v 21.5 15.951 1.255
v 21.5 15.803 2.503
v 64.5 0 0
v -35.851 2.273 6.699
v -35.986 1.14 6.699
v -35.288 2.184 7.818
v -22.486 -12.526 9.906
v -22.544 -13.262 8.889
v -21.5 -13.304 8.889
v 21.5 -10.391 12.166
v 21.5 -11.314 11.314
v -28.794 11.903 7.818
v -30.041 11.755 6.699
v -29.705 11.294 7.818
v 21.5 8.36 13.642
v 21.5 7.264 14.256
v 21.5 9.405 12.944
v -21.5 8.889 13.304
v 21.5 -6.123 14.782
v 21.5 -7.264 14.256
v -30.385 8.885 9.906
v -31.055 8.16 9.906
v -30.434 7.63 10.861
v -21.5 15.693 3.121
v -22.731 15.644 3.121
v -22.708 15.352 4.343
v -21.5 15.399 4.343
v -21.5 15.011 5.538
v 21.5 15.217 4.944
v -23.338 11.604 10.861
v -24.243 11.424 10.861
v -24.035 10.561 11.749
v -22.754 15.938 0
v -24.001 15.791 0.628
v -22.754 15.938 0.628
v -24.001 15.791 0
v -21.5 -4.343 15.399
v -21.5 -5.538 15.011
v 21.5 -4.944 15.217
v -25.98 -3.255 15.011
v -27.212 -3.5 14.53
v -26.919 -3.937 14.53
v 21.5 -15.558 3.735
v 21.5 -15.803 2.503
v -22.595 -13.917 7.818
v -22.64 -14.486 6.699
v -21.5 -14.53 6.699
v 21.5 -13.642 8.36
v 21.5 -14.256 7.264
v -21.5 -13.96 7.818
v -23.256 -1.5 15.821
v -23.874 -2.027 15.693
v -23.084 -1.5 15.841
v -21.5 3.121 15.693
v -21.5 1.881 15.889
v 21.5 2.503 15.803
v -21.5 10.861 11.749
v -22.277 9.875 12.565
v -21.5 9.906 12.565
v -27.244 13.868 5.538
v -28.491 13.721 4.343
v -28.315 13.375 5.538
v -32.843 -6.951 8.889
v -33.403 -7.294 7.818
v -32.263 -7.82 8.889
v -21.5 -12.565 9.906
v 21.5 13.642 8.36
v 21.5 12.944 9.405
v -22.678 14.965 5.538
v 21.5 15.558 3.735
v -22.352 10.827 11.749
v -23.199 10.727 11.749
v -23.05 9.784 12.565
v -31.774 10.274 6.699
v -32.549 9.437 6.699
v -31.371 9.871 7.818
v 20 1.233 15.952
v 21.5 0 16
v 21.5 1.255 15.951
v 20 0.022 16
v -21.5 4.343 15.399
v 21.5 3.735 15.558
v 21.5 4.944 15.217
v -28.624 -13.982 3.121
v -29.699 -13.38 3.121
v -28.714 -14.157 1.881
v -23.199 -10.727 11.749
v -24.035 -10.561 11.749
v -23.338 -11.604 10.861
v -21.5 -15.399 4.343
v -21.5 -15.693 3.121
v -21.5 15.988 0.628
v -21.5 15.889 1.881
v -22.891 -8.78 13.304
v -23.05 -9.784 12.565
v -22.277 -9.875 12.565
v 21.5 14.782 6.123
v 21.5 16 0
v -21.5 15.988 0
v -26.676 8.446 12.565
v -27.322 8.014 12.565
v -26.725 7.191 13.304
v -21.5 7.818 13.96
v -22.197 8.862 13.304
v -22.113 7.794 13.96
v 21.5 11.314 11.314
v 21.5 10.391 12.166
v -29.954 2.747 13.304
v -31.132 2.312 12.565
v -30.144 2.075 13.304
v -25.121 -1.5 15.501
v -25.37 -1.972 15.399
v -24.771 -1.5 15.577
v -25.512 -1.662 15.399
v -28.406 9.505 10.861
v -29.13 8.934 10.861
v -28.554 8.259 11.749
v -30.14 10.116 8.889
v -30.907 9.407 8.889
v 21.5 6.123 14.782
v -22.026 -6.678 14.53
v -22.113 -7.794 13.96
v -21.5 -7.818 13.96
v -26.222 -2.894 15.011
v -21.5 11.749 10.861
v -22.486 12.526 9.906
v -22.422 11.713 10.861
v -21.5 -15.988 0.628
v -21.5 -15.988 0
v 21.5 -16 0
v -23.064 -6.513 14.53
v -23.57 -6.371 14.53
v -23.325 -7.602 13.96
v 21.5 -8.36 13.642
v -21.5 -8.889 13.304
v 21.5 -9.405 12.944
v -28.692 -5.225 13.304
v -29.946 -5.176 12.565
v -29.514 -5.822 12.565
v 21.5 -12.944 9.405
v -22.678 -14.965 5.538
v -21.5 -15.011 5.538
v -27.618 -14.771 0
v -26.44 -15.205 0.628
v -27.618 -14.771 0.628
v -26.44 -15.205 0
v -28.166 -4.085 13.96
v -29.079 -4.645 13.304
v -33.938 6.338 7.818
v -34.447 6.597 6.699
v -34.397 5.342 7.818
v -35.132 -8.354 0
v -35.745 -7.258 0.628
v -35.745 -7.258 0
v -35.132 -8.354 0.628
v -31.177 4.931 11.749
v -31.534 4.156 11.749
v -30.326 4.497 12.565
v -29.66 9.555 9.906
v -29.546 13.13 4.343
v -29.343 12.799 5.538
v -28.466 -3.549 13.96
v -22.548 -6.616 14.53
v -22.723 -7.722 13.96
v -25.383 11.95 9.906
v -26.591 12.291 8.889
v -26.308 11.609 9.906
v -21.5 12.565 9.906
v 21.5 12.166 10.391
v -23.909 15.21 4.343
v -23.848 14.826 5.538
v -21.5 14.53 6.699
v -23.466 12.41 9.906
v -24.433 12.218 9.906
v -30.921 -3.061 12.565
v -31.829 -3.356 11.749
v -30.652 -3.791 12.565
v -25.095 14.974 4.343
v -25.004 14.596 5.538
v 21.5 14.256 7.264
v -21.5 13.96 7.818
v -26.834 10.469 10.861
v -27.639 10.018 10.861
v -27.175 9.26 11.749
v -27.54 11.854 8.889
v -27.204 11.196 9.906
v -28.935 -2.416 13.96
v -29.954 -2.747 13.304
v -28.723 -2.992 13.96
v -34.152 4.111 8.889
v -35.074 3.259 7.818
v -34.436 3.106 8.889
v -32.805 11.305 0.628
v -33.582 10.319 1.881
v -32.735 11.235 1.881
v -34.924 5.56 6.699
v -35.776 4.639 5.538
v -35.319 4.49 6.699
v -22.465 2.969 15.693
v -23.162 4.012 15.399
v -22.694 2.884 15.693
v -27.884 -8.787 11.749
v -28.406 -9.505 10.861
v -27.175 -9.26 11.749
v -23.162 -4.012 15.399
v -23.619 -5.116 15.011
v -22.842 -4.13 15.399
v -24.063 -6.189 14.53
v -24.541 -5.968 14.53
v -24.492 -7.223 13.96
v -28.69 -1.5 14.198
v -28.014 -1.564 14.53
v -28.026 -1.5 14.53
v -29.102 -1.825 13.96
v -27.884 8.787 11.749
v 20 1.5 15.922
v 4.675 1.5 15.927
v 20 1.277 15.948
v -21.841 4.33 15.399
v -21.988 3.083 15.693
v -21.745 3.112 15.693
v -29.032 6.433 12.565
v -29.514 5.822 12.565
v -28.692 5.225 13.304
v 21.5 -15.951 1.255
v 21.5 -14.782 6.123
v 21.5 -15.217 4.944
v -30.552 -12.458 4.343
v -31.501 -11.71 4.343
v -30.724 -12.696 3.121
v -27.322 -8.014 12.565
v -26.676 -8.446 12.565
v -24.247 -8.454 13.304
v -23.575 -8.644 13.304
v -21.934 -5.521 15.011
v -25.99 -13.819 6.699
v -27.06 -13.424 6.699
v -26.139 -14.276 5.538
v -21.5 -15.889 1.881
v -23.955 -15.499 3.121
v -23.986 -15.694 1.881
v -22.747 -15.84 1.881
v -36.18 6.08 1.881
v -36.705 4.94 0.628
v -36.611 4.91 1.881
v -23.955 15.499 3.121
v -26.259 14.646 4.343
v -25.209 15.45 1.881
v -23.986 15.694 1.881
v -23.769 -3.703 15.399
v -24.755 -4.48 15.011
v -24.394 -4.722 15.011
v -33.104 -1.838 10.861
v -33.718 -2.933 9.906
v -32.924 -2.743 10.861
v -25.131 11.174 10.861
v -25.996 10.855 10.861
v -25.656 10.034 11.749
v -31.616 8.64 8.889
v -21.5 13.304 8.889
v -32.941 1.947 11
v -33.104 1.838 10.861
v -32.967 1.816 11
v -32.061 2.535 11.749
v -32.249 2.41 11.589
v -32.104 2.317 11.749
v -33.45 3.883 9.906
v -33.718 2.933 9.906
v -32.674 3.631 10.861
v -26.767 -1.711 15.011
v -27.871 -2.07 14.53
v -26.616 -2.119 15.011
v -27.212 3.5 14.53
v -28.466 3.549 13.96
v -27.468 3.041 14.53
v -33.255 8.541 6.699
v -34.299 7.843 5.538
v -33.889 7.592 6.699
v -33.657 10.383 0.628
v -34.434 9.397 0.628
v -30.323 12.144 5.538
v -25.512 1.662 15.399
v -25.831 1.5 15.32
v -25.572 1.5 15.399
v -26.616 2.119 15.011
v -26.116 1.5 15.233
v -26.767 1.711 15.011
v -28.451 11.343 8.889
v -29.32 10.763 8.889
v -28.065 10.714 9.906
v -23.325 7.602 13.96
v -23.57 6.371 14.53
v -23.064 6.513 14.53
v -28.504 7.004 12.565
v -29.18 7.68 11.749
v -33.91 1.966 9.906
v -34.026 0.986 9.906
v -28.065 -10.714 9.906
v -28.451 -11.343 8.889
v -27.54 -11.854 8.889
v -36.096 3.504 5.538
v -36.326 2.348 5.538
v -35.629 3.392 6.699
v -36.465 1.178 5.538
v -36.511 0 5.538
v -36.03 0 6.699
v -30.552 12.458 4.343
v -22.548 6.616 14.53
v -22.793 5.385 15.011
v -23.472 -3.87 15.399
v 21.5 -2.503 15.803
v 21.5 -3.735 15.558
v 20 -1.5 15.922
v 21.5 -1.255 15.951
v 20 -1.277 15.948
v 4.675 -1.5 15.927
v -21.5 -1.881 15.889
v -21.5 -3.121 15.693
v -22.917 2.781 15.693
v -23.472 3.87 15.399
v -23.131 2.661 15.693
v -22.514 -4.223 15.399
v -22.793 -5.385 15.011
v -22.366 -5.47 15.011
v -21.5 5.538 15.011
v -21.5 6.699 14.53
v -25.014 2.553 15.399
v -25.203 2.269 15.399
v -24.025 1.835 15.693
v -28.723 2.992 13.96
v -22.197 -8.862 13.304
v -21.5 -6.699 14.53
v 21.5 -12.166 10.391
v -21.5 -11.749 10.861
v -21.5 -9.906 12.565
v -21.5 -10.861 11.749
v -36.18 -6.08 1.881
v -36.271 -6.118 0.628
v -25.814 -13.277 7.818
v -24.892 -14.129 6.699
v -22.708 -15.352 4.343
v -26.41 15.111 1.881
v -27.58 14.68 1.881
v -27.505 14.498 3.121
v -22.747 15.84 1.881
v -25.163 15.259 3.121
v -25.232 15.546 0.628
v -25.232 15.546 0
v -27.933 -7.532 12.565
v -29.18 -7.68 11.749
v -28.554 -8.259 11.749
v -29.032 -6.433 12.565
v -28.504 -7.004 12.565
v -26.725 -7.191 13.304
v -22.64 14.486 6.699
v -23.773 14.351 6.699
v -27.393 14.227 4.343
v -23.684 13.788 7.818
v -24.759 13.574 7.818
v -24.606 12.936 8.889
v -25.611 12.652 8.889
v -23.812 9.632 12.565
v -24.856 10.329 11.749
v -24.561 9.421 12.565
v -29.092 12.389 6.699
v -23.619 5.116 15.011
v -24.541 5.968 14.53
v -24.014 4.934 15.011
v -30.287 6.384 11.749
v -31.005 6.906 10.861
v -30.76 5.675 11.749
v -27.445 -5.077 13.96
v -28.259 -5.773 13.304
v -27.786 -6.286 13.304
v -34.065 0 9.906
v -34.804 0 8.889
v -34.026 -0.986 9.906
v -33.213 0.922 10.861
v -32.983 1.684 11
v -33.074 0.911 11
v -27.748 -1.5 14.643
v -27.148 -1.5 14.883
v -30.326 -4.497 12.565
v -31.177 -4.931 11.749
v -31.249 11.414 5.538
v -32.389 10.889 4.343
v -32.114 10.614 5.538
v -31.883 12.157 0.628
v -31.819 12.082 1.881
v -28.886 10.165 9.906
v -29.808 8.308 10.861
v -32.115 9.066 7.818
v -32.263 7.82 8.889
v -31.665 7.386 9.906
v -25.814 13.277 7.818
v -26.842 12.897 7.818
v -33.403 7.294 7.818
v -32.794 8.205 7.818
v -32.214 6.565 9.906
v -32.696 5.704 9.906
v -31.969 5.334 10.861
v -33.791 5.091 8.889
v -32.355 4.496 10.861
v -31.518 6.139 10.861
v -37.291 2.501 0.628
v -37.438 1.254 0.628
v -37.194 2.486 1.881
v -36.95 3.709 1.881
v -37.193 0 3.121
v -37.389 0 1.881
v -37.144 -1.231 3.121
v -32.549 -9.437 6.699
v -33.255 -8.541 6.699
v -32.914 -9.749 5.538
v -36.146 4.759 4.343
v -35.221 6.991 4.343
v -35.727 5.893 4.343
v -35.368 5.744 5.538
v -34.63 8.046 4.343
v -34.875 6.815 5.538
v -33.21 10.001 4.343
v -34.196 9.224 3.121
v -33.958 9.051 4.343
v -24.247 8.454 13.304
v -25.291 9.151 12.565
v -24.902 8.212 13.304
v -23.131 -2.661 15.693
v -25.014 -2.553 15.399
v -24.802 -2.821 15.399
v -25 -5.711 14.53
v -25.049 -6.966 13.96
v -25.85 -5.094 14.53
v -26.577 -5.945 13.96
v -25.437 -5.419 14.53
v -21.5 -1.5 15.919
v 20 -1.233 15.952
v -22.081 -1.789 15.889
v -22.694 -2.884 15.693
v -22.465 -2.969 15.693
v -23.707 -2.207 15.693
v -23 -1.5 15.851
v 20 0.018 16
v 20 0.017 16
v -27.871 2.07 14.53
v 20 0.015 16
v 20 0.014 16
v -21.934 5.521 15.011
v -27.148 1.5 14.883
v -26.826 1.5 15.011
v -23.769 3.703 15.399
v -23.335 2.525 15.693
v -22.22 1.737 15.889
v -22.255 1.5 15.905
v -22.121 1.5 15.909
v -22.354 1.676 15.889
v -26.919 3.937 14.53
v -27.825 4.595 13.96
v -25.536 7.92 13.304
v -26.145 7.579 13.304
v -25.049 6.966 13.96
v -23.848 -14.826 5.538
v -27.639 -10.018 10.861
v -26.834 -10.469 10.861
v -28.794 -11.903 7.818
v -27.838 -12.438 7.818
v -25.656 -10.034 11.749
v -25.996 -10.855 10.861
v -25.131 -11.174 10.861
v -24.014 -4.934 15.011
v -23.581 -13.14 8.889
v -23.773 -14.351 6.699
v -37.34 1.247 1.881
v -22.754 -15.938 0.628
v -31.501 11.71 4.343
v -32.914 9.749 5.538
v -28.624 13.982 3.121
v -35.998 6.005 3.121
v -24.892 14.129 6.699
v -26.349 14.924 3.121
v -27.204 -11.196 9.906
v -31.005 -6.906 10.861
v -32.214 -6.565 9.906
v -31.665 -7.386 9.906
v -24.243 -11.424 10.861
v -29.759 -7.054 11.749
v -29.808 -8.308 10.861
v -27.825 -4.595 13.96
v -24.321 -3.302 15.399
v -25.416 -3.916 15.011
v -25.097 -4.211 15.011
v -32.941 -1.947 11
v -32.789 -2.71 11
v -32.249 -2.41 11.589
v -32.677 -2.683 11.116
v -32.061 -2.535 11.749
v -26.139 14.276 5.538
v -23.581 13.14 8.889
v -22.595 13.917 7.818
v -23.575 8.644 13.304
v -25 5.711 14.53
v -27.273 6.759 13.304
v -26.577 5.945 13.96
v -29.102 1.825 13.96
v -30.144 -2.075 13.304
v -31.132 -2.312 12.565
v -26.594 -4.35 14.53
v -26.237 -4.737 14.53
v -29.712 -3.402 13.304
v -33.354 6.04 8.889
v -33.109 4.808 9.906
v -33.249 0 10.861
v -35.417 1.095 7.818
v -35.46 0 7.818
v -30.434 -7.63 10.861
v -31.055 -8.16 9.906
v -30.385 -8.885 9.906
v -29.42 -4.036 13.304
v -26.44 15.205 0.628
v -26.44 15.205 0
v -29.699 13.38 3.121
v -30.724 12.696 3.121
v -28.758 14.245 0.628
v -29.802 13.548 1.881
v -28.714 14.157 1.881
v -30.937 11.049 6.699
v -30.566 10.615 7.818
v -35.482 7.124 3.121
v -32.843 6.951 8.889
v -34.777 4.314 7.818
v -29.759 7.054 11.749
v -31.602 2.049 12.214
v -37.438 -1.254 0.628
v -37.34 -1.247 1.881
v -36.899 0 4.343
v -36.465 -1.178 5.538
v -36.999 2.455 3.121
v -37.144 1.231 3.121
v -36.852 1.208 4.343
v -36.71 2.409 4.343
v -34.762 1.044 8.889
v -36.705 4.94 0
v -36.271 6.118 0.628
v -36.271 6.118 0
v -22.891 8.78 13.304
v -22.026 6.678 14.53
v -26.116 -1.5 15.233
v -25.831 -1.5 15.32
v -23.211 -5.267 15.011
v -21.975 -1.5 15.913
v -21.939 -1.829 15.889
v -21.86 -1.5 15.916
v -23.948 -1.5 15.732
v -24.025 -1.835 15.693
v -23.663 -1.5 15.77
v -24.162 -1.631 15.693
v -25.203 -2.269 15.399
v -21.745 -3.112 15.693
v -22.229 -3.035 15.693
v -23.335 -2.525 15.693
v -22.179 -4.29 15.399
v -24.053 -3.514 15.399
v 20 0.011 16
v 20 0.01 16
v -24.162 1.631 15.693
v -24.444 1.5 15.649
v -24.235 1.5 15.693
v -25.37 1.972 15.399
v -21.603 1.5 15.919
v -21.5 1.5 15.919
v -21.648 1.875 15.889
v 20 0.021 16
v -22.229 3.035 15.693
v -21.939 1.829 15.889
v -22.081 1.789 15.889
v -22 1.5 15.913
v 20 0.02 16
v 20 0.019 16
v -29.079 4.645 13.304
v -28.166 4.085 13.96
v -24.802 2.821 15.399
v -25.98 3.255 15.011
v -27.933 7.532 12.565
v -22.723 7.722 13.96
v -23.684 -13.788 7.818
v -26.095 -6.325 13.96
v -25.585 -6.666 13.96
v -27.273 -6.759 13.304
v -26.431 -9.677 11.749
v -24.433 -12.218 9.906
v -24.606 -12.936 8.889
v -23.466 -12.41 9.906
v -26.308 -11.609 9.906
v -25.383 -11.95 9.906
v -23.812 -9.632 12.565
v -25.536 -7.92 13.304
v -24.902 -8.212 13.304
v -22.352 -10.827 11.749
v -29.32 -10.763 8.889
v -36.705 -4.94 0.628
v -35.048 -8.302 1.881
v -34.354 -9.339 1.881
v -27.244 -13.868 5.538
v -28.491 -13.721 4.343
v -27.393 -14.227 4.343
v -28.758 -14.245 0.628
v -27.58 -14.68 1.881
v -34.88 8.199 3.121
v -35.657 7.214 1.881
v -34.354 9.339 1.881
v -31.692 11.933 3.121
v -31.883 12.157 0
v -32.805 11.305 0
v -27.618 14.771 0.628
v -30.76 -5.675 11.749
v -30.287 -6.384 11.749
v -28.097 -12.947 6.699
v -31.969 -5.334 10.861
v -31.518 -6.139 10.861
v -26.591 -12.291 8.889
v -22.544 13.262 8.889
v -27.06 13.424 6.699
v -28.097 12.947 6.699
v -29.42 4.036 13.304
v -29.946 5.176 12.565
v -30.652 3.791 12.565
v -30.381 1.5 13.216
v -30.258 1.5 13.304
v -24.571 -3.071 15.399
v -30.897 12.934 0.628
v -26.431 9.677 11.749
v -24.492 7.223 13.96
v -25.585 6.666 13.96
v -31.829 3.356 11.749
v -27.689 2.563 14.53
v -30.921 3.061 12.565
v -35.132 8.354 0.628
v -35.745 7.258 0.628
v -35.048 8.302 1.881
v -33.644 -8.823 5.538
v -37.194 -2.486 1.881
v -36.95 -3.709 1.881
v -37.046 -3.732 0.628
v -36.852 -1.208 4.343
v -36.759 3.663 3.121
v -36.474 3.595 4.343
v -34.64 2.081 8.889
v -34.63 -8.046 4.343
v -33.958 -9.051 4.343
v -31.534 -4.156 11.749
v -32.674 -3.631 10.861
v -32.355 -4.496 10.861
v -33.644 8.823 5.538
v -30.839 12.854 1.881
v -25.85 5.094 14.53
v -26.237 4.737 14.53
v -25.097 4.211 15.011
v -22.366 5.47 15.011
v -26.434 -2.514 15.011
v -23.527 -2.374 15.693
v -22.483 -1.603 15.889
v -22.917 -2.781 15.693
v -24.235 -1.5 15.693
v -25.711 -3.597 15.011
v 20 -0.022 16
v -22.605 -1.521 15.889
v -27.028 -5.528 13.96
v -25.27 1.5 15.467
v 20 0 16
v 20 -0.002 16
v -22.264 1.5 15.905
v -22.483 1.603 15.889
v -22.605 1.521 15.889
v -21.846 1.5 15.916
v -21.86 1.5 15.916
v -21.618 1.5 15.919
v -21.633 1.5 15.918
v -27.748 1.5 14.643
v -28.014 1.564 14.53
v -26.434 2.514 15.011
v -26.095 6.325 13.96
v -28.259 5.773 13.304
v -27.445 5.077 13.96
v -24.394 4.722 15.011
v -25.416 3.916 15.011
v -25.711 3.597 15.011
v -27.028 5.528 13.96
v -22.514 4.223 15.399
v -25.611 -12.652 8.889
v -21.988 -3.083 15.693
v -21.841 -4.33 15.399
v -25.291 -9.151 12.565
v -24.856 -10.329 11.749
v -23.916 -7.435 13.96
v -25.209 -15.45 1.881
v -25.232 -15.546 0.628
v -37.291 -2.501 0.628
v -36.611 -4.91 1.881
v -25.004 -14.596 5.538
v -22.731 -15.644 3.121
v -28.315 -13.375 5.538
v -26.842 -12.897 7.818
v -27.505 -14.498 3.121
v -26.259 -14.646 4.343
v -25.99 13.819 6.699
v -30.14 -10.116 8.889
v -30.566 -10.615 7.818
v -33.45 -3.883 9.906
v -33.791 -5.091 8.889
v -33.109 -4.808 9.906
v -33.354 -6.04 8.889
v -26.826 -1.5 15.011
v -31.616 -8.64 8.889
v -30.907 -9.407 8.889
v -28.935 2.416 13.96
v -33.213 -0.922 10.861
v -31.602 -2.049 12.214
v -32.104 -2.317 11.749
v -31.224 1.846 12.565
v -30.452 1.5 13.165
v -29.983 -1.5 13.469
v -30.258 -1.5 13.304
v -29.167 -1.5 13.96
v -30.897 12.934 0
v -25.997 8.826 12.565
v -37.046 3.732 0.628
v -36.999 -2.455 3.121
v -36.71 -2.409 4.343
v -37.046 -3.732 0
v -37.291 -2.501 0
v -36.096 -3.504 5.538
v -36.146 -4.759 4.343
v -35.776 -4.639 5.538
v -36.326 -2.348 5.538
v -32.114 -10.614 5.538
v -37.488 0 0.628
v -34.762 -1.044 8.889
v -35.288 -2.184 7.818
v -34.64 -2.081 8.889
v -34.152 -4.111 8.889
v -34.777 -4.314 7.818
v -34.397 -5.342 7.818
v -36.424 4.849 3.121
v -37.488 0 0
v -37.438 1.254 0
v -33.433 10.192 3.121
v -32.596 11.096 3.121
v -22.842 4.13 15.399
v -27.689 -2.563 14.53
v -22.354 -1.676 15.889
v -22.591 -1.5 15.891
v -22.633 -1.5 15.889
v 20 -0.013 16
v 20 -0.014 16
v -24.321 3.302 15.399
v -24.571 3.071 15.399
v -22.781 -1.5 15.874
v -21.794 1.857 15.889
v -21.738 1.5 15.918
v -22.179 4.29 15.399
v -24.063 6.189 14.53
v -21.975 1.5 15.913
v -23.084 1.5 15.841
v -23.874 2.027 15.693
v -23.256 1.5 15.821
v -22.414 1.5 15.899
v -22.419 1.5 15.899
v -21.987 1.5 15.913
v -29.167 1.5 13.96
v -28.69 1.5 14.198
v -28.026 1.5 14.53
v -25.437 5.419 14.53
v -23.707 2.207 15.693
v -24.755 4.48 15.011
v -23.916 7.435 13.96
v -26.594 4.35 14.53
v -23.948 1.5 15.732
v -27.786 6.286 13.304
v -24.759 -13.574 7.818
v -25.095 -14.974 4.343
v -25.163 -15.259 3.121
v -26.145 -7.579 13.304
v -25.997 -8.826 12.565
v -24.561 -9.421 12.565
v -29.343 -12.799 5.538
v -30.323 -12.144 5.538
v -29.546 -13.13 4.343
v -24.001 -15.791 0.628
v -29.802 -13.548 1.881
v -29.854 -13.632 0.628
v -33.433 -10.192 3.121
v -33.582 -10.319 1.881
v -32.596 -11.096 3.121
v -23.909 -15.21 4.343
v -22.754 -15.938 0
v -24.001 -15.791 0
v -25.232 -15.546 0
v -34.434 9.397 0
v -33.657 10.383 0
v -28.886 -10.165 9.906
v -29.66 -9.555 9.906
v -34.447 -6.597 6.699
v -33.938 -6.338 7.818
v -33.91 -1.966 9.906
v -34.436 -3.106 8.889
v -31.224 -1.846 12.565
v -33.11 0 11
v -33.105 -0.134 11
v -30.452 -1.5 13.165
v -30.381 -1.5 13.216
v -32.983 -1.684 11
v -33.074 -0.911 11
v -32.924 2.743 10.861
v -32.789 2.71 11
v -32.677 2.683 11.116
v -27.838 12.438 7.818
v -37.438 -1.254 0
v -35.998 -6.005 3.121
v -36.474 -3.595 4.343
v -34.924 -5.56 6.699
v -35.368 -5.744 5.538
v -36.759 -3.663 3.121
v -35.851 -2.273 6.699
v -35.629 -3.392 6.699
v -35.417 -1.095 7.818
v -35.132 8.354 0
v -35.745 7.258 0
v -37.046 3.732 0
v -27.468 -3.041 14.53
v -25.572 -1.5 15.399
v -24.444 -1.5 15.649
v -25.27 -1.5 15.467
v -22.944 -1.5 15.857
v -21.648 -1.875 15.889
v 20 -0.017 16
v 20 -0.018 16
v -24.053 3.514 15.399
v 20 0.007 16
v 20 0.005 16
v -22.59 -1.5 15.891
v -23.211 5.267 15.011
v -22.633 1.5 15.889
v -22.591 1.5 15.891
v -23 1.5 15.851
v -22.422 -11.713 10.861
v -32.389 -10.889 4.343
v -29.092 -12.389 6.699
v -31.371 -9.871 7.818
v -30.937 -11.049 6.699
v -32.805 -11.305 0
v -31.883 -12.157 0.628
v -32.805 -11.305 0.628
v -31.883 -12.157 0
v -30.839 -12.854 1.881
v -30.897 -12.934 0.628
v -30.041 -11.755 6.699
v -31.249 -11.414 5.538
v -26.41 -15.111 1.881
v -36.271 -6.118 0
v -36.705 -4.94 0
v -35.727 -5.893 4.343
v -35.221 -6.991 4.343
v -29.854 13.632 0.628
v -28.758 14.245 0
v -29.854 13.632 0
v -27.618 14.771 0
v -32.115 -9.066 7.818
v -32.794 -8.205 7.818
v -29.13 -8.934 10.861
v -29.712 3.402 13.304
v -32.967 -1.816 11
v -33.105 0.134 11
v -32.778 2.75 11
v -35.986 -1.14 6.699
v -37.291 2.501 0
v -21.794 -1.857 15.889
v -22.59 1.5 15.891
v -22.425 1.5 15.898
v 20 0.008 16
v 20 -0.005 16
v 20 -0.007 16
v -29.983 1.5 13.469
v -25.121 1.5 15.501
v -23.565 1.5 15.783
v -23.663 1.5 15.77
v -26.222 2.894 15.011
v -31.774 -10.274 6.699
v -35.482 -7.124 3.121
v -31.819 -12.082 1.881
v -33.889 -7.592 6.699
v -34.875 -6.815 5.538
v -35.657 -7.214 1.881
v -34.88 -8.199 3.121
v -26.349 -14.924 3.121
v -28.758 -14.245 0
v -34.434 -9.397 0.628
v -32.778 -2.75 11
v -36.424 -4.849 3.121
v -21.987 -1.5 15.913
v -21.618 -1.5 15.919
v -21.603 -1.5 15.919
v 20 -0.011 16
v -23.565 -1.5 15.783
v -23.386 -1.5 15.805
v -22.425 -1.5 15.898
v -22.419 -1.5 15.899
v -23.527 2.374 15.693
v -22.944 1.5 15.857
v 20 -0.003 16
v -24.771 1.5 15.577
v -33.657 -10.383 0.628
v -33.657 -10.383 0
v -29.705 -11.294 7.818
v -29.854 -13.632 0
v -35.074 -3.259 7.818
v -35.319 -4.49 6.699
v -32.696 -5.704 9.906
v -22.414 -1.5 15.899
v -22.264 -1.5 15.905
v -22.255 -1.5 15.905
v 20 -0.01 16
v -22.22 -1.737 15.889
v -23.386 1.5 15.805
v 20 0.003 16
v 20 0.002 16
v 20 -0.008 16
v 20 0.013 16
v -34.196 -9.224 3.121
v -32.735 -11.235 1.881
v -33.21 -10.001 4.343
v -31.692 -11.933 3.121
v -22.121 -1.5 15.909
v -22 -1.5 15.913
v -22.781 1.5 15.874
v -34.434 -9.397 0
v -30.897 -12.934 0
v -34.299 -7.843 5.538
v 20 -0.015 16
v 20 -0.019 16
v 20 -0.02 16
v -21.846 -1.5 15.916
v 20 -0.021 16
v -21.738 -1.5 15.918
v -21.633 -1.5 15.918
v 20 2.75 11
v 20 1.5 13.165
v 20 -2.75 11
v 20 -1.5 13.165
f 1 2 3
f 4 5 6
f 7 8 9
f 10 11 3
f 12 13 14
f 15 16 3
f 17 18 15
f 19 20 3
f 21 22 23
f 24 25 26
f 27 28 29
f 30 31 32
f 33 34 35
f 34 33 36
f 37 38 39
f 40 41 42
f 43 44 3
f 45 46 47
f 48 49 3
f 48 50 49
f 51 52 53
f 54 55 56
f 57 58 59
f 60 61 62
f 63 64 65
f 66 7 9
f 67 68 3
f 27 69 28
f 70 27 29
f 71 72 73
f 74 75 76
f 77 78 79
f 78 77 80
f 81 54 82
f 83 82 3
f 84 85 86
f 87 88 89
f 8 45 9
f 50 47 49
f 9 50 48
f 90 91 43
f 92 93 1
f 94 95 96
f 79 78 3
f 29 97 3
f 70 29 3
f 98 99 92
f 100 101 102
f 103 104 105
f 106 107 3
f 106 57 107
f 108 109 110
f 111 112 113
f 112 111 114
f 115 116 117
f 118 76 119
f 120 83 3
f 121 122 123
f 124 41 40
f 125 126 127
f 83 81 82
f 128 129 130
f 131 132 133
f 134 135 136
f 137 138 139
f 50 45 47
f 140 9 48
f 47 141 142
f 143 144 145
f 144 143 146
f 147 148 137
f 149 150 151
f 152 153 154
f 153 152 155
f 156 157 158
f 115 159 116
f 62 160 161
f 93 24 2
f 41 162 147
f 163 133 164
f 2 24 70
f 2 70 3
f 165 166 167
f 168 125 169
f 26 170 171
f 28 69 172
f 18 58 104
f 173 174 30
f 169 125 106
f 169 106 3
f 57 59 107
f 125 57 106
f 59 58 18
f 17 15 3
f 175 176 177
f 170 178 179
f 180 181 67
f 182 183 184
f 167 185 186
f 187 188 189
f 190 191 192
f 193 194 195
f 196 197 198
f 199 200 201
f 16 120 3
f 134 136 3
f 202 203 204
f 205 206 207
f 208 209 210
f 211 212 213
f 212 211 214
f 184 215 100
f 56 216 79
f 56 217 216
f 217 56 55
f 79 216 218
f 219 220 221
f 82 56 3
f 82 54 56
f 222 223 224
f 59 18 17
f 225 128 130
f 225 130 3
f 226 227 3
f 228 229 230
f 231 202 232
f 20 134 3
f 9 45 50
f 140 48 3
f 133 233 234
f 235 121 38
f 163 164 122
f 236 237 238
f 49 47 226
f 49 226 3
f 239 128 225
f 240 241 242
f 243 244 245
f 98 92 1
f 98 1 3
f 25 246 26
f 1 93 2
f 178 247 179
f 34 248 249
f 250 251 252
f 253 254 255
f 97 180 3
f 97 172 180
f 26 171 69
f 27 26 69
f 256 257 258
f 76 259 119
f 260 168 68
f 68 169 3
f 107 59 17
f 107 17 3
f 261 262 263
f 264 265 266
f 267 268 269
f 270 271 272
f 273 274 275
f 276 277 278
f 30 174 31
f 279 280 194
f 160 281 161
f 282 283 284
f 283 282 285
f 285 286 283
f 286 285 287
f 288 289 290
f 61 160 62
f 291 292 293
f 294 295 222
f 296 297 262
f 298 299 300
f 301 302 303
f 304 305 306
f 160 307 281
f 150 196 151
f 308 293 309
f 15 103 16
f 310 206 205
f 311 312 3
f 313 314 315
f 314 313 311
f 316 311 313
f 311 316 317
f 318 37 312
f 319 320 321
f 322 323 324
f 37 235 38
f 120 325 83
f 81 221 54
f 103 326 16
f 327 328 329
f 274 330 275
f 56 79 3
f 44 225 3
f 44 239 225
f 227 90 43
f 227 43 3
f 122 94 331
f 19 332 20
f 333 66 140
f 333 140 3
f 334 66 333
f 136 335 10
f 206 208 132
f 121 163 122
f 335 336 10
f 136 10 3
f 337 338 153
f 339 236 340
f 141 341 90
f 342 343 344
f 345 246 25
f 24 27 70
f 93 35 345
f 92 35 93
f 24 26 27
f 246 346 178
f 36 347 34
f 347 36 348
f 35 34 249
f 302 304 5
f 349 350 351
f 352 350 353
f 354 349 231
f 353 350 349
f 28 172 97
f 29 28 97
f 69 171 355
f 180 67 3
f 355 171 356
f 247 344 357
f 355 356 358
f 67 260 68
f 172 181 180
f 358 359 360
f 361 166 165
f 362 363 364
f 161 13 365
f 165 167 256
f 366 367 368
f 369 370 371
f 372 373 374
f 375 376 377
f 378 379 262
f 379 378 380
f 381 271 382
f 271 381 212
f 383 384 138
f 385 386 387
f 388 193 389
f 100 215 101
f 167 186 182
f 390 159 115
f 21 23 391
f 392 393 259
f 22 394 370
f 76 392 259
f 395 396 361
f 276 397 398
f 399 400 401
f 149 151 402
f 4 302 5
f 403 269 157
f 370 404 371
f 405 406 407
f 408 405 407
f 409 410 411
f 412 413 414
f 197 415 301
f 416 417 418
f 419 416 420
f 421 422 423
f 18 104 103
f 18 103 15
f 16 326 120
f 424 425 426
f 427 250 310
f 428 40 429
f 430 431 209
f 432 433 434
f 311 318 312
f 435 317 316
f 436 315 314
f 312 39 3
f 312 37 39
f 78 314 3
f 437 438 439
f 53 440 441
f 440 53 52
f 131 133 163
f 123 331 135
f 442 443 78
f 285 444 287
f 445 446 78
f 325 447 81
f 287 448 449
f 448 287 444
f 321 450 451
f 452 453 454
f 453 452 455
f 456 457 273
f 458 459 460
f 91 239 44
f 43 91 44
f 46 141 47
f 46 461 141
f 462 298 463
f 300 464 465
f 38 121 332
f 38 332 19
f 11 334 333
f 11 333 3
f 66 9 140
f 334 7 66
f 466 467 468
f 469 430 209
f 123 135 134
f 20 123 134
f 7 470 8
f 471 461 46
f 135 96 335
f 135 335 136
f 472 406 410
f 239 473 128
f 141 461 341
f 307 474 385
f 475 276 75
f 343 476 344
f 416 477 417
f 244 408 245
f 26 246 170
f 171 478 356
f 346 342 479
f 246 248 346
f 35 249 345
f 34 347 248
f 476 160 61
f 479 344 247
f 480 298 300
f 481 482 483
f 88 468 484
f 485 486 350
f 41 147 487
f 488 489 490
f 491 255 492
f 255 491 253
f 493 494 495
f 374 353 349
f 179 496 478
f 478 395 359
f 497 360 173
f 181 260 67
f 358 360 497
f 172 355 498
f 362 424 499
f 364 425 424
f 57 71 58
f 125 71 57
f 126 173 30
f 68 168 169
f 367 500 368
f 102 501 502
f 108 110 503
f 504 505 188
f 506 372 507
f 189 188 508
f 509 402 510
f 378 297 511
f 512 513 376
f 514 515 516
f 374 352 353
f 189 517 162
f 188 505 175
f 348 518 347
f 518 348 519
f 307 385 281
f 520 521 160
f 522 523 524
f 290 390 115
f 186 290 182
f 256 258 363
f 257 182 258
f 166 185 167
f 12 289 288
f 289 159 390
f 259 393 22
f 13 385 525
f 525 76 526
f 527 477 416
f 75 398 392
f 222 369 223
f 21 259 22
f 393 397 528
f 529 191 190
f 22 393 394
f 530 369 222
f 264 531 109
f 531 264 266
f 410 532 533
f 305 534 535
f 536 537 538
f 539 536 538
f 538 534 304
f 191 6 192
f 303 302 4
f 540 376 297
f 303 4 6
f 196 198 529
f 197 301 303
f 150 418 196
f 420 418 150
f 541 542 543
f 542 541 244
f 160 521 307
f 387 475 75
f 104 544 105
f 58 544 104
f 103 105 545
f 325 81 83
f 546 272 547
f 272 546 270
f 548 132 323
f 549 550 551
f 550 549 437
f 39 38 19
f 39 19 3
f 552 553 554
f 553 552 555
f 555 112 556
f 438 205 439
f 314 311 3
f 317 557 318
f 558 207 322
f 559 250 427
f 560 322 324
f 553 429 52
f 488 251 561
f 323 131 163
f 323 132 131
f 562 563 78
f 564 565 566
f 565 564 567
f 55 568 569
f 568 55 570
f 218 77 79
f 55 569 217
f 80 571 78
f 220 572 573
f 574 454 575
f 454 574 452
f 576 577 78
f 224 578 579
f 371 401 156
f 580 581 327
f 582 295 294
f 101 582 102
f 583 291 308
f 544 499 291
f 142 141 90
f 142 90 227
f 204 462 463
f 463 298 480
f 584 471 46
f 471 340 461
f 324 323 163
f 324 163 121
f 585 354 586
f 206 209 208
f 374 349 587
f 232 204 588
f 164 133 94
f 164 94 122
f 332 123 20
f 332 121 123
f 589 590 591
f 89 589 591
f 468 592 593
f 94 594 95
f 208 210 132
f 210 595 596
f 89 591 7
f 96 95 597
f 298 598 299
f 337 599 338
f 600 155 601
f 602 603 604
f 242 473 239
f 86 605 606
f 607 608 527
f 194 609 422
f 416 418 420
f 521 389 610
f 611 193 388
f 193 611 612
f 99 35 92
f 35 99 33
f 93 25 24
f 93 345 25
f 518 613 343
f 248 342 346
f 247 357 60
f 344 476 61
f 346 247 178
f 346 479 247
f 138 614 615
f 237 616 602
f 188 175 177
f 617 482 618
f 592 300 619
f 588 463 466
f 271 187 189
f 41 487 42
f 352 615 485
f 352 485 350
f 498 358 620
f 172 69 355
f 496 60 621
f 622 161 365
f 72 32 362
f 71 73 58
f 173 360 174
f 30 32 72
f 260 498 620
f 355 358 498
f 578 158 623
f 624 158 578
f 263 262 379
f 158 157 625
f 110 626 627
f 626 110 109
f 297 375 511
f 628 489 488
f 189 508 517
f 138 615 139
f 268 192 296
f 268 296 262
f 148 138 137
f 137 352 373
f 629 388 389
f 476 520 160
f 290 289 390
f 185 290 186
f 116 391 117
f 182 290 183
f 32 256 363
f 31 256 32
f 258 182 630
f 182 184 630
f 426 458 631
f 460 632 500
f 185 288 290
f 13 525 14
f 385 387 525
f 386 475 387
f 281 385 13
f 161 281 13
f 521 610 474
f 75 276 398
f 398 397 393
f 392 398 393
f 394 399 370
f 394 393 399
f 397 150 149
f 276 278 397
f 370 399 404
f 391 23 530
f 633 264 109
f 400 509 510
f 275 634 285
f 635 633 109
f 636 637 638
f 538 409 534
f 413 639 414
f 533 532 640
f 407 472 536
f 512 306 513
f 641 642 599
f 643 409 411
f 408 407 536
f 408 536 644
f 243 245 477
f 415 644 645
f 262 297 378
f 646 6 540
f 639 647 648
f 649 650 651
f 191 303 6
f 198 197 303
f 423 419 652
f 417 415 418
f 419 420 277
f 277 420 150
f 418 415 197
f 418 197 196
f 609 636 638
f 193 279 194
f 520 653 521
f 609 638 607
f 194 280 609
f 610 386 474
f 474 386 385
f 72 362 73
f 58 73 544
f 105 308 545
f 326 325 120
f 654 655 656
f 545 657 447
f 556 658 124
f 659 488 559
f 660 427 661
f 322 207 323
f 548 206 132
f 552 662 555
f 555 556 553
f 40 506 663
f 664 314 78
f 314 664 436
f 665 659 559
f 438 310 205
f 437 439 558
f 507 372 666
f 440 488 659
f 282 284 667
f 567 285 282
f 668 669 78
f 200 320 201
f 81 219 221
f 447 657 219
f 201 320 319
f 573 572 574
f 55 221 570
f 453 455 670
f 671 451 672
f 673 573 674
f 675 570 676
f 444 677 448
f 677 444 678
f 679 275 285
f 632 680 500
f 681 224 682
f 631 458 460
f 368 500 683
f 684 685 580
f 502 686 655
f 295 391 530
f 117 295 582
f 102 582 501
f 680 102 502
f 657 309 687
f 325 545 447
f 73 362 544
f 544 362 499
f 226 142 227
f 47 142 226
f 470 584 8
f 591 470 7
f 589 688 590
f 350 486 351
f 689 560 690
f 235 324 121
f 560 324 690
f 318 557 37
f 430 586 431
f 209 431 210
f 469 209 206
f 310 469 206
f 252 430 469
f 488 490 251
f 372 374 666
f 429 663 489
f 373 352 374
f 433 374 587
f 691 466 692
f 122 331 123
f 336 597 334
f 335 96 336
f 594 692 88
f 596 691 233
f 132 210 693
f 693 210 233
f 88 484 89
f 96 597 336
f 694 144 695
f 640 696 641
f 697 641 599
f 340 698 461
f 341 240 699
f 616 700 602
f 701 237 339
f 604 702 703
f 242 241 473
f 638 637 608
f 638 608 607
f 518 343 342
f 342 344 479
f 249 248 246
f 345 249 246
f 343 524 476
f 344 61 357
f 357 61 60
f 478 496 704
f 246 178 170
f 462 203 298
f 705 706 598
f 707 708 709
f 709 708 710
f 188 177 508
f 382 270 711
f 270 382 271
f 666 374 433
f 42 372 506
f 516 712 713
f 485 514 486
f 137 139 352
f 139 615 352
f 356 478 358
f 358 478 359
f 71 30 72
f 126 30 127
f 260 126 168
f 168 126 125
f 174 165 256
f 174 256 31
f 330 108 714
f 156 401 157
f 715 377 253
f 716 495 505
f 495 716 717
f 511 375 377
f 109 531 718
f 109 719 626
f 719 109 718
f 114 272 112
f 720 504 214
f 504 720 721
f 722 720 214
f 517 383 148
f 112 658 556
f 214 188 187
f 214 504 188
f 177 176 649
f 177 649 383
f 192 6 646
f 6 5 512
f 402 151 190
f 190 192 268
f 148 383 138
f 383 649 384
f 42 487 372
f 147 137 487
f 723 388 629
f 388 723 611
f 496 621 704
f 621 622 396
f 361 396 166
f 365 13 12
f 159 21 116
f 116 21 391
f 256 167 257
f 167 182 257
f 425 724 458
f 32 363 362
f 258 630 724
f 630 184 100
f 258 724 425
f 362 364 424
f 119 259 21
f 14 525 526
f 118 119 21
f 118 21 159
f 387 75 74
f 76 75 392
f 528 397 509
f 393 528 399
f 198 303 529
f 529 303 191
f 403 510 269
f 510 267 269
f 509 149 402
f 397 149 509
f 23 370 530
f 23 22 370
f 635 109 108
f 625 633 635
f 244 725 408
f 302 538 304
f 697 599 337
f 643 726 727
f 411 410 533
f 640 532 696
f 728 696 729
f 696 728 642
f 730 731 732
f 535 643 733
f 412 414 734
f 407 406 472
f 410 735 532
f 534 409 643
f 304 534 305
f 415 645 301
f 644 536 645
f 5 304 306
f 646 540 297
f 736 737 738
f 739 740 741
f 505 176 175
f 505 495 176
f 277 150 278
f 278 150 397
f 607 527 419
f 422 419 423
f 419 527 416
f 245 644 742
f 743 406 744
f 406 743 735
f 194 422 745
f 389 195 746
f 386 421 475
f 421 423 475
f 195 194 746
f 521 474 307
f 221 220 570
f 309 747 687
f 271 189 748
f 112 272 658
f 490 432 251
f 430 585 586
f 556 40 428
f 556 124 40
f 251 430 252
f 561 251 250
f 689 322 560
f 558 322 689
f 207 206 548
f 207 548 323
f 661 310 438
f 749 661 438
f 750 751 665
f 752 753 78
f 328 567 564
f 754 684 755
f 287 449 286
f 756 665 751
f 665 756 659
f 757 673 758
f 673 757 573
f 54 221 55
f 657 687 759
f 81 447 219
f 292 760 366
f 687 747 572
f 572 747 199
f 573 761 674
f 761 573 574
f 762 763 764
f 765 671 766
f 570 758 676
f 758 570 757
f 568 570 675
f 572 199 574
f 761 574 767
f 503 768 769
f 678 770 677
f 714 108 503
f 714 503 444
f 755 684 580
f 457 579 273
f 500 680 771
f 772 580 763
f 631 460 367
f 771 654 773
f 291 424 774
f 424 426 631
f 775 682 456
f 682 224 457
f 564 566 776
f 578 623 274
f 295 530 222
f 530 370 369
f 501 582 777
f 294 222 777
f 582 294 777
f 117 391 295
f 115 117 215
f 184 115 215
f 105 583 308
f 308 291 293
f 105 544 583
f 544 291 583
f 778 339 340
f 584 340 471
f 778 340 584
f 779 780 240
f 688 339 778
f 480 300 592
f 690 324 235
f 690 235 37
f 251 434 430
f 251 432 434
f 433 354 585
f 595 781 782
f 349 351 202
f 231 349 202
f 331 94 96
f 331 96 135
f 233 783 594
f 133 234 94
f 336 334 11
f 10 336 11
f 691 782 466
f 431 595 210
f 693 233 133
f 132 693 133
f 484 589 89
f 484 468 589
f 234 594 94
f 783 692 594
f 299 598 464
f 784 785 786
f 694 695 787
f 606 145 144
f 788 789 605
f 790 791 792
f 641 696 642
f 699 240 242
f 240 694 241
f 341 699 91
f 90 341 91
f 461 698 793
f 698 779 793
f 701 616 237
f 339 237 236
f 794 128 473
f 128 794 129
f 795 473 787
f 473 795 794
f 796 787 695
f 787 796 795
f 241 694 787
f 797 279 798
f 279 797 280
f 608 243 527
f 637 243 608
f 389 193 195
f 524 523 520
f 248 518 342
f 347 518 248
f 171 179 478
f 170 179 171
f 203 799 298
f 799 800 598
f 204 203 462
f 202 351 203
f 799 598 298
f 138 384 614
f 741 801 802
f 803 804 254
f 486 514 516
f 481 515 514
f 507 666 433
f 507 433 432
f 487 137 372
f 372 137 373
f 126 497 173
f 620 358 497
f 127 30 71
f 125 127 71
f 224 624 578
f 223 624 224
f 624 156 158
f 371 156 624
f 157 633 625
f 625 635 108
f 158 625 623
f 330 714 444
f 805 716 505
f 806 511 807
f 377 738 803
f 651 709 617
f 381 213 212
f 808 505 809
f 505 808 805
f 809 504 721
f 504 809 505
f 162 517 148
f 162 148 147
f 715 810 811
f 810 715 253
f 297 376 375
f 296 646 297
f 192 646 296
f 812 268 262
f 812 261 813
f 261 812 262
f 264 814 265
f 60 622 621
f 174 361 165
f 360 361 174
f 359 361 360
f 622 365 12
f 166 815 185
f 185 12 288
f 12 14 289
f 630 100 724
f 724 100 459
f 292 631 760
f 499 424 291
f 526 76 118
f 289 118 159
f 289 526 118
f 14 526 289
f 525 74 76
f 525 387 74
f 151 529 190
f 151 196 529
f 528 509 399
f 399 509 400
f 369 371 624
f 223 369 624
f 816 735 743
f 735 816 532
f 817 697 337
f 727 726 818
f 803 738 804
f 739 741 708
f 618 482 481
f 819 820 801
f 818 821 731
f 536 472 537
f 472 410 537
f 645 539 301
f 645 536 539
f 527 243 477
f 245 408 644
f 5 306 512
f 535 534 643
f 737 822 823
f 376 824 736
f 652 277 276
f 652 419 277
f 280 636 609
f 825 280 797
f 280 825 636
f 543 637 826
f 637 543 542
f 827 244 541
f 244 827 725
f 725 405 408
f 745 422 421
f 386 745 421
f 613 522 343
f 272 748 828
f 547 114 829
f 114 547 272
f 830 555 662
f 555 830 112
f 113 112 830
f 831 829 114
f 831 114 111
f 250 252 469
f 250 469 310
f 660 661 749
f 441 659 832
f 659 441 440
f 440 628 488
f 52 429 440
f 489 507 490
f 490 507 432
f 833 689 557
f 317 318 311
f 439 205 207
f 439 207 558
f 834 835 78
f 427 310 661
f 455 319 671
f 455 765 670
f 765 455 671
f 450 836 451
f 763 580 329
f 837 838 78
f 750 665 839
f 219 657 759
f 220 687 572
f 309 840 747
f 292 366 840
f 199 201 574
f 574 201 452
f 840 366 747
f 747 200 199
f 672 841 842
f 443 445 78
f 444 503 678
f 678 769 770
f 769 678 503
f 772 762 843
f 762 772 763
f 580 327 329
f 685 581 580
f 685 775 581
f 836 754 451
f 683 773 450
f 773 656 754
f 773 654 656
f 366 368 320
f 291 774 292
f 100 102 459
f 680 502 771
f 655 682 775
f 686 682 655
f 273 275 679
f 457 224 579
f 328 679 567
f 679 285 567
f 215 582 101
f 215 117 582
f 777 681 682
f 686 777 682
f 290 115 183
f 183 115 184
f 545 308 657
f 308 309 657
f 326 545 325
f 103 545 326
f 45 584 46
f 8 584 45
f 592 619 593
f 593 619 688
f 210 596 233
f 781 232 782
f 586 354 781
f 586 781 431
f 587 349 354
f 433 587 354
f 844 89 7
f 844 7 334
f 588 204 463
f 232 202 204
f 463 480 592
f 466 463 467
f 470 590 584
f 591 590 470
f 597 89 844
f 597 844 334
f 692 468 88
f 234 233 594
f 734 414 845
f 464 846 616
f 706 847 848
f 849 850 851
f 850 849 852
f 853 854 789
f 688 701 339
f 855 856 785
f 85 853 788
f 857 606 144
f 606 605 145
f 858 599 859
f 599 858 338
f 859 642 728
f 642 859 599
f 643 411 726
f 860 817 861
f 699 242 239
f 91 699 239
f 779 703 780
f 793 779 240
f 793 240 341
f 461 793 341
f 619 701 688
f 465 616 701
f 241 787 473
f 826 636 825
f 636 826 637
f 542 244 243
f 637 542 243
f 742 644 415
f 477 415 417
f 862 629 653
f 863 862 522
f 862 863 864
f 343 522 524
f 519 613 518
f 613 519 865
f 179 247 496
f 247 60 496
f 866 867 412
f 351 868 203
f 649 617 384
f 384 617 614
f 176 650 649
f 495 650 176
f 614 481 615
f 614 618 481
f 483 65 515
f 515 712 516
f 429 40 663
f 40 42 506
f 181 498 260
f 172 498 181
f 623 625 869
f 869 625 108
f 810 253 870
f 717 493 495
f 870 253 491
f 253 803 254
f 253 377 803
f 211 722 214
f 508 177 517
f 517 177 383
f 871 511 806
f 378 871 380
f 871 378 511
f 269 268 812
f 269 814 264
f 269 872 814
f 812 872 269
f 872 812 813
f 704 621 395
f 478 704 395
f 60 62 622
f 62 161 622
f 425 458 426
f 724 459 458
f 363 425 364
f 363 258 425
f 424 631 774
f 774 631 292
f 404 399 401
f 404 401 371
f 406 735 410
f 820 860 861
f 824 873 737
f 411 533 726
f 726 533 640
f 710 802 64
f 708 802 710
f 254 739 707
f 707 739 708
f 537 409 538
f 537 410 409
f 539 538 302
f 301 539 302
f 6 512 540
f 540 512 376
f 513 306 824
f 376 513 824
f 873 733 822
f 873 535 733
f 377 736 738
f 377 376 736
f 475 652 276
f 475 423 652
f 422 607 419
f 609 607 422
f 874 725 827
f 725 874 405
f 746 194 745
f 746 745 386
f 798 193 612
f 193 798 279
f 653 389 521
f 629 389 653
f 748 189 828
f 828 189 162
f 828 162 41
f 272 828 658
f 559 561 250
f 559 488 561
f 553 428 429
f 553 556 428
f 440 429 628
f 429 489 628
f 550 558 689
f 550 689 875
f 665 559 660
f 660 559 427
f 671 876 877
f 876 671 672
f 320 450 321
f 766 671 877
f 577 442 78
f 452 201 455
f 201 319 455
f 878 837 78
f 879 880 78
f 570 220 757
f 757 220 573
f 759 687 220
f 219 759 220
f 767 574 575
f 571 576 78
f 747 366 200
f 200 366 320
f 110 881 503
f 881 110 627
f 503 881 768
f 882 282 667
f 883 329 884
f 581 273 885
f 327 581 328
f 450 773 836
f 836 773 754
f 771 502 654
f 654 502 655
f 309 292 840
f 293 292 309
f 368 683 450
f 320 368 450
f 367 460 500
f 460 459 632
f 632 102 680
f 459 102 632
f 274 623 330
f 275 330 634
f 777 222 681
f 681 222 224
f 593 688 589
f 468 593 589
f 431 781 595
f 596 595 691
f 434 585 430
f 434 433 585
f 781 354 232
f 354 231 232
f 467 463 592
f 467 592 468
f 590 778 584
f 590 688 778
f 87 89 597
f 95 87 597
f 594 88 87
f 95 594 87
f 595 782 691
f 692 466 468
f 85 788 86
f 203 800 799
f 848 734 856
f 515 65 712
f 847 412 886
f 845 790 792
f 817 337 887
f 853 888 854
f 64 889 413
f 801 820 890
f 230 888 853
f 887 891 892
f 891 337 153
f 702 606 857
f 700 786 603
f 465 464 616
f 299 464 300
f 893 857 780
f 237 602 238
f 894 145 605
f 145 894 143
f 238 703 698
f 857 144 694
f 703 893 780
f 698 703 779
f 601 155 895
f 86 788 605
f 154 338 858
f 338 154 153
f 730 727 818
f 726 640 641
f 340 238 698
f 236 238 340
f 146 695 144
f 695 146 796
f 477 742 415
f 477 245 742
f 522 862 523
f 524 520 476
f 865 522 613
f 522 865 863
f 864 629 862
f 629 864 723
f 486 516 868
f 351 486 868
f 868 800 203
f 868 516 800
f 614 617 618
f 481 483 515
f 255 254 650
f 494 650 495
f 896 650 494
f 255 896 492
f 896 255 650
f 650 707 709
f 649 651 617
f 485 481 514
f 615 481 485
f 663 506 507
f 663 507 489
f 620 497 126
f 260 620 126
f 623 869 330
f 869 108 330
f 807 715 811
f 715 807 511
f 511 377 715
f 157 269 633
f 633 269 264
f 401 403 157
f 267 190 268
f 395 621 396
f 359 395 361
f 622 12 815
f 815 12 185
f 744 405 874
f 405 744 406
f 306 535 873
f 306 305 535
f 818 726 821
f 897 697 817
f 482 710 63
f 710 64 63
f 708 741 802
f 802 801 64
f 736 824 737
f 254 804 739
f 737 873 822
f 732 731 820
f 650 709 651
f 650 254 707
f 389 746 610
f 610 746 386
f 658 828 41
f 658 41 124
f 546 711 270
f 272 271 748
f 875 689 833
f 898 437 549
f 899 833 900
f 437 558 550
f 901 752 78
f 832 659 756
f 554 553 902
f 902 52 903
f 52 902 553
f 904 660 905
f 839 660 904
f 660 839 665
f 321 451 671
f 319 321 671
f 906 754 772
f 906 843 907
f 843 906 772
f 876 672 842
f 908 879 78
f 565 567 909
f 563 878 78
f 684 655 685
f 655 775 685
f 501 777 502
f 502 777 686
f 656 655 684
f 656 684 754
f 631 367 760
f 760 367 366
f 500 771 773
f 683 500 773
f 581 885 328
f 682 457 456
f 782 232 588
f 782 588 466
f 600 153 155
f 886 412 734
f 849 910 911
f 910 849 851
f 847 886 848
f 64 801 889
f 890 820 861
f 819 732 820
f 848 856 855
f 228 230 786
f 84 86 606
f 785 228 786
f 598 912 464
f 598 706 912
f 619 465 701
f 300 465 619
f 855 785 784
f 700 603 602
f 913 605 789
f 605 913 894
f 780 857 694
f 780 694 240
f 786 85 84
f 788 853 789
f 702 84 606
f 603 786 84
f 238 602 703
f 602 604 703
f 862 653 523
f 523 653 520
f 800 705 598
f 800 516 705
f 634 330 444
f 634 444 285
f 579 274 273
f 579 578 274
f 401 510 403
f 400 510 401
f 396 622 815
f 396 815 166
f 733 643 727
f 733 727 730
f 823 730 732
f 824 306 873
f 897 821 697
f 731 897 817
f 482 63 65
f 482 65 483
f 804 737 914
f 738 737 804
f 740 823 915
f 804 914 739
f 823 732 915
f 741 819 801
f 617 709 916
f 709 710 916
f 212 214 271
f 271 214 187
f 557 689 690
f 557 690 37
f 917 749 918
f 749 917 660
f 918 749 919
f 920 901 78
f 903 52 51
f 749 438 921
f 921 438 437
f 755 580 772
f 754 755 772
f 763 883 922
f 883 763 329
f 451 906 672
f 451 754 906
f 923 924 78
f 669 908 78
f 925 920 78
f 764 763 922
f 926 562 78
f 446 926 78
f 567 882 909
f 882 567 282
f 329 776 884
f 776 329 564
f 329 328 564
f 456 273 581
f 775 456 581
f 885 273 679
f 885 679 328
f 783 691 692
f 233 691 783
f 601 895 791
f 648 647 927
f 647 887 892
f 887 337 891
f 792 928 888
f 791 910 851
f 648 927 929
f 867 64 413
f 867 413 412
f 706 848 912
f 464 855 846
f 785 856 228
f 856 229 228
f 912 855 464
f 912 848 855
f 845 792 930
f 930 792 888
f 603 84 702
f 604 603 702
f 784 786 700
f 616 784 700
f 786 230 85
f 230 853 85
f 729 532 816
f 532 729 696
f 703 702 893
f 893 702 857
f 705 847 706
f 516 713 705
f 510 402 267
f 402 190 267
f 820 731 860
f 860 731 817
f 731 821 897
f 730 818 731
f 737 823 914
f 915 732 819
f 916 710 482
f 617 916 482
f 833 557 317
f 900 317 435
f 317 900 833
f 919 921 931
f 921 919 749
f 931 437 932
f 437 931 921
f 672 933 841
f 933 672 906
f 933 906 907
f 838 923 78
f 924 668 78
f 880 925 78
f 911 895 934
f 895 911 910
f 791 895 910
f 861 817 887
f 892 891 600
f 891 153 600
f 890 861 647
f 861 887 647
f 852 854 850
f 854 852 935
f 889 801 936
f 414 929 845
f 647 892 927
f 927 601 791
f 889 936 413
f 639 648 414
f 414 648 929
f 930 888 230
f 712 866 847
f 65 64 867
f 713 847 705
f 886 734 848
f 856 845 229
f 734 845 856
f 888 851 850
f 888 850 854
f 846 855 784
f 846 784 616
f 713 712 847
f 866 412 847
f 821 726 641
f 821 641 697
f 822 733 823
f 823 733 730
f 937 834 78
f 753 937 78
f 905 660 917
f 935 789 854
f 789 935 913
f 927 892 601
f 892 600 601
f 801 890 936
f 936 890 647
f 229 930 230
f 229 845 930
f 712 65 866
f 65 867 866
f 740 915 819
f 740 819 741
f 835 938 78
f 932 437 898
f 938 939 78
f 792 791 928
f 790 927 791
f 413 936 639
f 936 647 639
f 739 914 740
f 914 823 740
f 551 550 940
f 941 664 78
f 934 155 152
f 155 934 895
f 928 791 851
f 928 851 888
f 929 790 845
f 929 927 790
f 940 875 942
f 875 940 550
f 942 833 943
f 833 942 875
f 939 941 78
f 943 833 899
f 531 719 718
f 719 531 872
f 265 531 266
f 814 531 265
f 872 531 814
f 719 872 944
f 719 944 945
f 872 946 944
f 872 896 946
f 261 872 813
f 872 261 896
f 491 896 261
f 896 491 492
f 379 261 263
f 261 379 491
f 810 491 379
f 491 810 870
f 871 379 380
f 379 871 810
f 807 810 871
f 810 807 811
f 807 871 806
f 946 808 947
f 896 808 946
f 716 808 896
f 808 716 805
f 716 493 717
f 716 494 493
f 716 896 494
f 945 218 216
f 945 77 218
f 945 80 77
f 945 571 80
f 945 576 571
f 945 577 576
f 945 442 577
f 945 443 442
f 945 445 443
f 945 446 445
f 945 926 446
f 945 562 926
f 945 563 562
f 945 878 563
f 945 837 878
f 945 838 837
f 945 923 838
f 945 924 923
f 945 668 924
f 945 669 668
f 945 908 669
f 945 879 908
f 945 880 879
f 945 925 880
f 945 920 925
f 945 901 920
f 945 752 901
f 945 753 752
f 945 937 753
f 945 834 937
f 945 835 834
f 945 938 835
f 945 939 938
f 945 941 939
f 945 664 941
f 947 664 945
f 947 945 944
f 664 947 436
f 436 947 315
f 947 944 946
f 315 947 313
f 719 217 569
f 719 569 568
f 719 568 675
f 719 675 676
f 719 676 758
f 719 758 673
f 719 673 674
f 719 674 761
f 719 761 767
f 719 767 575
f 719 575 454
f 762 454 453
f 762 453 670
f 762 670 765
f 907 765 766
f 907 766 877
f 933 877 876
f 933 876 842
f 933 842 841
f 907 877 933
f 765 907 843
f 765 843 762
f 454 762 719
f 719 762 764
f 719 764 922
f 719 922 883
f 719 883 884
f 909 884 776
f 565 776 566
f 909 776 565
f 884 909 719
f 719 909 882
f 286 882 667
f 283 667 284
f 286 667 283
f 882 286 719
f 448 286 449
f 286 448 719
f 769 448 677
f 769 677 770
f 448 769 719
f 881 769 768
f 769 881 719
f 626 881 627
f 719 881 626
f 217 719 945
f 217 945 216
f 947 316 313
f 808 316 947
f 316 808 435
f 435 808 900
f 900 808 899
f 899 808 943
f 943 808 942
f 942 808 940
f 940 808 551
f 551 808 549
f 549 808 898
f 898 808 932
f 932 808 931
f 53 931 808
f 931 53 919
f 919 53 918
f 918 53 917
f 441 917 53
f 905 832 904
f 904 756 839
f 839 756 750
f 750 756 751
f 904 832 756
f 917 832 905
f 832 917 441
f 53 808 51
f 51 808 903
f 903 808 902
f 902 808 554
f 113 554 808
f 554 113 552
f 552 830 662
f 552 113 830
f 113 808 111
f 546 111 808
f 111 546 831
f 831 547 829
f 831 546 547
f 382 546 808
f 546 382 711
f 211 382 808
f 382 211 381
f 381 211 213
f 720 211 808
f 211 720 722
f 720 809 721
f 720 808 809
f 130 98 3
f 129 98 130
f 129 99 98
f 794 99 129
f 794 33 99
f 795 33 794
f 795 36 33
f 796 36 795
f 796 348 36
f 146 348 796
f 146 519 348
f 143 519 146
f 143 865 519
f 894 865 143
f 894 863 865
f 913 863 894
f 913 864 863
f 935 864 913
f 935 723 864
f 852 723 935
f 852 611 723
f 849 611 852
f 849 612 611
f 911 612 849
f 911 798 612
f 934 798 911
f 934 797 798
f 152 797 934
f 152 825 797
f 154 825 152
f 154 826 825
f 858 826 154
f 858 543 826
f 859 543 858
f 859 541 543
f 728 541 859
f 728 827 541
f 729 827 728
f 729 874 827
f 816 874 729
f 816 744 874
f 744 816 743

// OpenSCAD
$fn=80;

module trikotnik(stranica,visina){
    polmer=(stranica*sqrt(3))/3;
    translate([visina/2,0,polmer/2])
    rotate([0,-90,0])
    cylinder(h=visina,r=polmer,$fn=3);
}



difference(){

hull(){

/*translate([0,0,0])
rotate([0,90,0])
cylinder(h=43,r=16,center=true);
*/
translate([43,0,0])
rotate([0,90,0])
cylinder(h=43, r1=16, r2=0,center=true);

translate([-43/2,0,0])
sphere(r=16);
}

translate([-10,0,11])
trikotnik(5.5,60);

translate([-10,0,16])
cube([60,3,6],center=true);

translate([10,0,-16])
cube([130,16*2,16*2],center=true);
}
